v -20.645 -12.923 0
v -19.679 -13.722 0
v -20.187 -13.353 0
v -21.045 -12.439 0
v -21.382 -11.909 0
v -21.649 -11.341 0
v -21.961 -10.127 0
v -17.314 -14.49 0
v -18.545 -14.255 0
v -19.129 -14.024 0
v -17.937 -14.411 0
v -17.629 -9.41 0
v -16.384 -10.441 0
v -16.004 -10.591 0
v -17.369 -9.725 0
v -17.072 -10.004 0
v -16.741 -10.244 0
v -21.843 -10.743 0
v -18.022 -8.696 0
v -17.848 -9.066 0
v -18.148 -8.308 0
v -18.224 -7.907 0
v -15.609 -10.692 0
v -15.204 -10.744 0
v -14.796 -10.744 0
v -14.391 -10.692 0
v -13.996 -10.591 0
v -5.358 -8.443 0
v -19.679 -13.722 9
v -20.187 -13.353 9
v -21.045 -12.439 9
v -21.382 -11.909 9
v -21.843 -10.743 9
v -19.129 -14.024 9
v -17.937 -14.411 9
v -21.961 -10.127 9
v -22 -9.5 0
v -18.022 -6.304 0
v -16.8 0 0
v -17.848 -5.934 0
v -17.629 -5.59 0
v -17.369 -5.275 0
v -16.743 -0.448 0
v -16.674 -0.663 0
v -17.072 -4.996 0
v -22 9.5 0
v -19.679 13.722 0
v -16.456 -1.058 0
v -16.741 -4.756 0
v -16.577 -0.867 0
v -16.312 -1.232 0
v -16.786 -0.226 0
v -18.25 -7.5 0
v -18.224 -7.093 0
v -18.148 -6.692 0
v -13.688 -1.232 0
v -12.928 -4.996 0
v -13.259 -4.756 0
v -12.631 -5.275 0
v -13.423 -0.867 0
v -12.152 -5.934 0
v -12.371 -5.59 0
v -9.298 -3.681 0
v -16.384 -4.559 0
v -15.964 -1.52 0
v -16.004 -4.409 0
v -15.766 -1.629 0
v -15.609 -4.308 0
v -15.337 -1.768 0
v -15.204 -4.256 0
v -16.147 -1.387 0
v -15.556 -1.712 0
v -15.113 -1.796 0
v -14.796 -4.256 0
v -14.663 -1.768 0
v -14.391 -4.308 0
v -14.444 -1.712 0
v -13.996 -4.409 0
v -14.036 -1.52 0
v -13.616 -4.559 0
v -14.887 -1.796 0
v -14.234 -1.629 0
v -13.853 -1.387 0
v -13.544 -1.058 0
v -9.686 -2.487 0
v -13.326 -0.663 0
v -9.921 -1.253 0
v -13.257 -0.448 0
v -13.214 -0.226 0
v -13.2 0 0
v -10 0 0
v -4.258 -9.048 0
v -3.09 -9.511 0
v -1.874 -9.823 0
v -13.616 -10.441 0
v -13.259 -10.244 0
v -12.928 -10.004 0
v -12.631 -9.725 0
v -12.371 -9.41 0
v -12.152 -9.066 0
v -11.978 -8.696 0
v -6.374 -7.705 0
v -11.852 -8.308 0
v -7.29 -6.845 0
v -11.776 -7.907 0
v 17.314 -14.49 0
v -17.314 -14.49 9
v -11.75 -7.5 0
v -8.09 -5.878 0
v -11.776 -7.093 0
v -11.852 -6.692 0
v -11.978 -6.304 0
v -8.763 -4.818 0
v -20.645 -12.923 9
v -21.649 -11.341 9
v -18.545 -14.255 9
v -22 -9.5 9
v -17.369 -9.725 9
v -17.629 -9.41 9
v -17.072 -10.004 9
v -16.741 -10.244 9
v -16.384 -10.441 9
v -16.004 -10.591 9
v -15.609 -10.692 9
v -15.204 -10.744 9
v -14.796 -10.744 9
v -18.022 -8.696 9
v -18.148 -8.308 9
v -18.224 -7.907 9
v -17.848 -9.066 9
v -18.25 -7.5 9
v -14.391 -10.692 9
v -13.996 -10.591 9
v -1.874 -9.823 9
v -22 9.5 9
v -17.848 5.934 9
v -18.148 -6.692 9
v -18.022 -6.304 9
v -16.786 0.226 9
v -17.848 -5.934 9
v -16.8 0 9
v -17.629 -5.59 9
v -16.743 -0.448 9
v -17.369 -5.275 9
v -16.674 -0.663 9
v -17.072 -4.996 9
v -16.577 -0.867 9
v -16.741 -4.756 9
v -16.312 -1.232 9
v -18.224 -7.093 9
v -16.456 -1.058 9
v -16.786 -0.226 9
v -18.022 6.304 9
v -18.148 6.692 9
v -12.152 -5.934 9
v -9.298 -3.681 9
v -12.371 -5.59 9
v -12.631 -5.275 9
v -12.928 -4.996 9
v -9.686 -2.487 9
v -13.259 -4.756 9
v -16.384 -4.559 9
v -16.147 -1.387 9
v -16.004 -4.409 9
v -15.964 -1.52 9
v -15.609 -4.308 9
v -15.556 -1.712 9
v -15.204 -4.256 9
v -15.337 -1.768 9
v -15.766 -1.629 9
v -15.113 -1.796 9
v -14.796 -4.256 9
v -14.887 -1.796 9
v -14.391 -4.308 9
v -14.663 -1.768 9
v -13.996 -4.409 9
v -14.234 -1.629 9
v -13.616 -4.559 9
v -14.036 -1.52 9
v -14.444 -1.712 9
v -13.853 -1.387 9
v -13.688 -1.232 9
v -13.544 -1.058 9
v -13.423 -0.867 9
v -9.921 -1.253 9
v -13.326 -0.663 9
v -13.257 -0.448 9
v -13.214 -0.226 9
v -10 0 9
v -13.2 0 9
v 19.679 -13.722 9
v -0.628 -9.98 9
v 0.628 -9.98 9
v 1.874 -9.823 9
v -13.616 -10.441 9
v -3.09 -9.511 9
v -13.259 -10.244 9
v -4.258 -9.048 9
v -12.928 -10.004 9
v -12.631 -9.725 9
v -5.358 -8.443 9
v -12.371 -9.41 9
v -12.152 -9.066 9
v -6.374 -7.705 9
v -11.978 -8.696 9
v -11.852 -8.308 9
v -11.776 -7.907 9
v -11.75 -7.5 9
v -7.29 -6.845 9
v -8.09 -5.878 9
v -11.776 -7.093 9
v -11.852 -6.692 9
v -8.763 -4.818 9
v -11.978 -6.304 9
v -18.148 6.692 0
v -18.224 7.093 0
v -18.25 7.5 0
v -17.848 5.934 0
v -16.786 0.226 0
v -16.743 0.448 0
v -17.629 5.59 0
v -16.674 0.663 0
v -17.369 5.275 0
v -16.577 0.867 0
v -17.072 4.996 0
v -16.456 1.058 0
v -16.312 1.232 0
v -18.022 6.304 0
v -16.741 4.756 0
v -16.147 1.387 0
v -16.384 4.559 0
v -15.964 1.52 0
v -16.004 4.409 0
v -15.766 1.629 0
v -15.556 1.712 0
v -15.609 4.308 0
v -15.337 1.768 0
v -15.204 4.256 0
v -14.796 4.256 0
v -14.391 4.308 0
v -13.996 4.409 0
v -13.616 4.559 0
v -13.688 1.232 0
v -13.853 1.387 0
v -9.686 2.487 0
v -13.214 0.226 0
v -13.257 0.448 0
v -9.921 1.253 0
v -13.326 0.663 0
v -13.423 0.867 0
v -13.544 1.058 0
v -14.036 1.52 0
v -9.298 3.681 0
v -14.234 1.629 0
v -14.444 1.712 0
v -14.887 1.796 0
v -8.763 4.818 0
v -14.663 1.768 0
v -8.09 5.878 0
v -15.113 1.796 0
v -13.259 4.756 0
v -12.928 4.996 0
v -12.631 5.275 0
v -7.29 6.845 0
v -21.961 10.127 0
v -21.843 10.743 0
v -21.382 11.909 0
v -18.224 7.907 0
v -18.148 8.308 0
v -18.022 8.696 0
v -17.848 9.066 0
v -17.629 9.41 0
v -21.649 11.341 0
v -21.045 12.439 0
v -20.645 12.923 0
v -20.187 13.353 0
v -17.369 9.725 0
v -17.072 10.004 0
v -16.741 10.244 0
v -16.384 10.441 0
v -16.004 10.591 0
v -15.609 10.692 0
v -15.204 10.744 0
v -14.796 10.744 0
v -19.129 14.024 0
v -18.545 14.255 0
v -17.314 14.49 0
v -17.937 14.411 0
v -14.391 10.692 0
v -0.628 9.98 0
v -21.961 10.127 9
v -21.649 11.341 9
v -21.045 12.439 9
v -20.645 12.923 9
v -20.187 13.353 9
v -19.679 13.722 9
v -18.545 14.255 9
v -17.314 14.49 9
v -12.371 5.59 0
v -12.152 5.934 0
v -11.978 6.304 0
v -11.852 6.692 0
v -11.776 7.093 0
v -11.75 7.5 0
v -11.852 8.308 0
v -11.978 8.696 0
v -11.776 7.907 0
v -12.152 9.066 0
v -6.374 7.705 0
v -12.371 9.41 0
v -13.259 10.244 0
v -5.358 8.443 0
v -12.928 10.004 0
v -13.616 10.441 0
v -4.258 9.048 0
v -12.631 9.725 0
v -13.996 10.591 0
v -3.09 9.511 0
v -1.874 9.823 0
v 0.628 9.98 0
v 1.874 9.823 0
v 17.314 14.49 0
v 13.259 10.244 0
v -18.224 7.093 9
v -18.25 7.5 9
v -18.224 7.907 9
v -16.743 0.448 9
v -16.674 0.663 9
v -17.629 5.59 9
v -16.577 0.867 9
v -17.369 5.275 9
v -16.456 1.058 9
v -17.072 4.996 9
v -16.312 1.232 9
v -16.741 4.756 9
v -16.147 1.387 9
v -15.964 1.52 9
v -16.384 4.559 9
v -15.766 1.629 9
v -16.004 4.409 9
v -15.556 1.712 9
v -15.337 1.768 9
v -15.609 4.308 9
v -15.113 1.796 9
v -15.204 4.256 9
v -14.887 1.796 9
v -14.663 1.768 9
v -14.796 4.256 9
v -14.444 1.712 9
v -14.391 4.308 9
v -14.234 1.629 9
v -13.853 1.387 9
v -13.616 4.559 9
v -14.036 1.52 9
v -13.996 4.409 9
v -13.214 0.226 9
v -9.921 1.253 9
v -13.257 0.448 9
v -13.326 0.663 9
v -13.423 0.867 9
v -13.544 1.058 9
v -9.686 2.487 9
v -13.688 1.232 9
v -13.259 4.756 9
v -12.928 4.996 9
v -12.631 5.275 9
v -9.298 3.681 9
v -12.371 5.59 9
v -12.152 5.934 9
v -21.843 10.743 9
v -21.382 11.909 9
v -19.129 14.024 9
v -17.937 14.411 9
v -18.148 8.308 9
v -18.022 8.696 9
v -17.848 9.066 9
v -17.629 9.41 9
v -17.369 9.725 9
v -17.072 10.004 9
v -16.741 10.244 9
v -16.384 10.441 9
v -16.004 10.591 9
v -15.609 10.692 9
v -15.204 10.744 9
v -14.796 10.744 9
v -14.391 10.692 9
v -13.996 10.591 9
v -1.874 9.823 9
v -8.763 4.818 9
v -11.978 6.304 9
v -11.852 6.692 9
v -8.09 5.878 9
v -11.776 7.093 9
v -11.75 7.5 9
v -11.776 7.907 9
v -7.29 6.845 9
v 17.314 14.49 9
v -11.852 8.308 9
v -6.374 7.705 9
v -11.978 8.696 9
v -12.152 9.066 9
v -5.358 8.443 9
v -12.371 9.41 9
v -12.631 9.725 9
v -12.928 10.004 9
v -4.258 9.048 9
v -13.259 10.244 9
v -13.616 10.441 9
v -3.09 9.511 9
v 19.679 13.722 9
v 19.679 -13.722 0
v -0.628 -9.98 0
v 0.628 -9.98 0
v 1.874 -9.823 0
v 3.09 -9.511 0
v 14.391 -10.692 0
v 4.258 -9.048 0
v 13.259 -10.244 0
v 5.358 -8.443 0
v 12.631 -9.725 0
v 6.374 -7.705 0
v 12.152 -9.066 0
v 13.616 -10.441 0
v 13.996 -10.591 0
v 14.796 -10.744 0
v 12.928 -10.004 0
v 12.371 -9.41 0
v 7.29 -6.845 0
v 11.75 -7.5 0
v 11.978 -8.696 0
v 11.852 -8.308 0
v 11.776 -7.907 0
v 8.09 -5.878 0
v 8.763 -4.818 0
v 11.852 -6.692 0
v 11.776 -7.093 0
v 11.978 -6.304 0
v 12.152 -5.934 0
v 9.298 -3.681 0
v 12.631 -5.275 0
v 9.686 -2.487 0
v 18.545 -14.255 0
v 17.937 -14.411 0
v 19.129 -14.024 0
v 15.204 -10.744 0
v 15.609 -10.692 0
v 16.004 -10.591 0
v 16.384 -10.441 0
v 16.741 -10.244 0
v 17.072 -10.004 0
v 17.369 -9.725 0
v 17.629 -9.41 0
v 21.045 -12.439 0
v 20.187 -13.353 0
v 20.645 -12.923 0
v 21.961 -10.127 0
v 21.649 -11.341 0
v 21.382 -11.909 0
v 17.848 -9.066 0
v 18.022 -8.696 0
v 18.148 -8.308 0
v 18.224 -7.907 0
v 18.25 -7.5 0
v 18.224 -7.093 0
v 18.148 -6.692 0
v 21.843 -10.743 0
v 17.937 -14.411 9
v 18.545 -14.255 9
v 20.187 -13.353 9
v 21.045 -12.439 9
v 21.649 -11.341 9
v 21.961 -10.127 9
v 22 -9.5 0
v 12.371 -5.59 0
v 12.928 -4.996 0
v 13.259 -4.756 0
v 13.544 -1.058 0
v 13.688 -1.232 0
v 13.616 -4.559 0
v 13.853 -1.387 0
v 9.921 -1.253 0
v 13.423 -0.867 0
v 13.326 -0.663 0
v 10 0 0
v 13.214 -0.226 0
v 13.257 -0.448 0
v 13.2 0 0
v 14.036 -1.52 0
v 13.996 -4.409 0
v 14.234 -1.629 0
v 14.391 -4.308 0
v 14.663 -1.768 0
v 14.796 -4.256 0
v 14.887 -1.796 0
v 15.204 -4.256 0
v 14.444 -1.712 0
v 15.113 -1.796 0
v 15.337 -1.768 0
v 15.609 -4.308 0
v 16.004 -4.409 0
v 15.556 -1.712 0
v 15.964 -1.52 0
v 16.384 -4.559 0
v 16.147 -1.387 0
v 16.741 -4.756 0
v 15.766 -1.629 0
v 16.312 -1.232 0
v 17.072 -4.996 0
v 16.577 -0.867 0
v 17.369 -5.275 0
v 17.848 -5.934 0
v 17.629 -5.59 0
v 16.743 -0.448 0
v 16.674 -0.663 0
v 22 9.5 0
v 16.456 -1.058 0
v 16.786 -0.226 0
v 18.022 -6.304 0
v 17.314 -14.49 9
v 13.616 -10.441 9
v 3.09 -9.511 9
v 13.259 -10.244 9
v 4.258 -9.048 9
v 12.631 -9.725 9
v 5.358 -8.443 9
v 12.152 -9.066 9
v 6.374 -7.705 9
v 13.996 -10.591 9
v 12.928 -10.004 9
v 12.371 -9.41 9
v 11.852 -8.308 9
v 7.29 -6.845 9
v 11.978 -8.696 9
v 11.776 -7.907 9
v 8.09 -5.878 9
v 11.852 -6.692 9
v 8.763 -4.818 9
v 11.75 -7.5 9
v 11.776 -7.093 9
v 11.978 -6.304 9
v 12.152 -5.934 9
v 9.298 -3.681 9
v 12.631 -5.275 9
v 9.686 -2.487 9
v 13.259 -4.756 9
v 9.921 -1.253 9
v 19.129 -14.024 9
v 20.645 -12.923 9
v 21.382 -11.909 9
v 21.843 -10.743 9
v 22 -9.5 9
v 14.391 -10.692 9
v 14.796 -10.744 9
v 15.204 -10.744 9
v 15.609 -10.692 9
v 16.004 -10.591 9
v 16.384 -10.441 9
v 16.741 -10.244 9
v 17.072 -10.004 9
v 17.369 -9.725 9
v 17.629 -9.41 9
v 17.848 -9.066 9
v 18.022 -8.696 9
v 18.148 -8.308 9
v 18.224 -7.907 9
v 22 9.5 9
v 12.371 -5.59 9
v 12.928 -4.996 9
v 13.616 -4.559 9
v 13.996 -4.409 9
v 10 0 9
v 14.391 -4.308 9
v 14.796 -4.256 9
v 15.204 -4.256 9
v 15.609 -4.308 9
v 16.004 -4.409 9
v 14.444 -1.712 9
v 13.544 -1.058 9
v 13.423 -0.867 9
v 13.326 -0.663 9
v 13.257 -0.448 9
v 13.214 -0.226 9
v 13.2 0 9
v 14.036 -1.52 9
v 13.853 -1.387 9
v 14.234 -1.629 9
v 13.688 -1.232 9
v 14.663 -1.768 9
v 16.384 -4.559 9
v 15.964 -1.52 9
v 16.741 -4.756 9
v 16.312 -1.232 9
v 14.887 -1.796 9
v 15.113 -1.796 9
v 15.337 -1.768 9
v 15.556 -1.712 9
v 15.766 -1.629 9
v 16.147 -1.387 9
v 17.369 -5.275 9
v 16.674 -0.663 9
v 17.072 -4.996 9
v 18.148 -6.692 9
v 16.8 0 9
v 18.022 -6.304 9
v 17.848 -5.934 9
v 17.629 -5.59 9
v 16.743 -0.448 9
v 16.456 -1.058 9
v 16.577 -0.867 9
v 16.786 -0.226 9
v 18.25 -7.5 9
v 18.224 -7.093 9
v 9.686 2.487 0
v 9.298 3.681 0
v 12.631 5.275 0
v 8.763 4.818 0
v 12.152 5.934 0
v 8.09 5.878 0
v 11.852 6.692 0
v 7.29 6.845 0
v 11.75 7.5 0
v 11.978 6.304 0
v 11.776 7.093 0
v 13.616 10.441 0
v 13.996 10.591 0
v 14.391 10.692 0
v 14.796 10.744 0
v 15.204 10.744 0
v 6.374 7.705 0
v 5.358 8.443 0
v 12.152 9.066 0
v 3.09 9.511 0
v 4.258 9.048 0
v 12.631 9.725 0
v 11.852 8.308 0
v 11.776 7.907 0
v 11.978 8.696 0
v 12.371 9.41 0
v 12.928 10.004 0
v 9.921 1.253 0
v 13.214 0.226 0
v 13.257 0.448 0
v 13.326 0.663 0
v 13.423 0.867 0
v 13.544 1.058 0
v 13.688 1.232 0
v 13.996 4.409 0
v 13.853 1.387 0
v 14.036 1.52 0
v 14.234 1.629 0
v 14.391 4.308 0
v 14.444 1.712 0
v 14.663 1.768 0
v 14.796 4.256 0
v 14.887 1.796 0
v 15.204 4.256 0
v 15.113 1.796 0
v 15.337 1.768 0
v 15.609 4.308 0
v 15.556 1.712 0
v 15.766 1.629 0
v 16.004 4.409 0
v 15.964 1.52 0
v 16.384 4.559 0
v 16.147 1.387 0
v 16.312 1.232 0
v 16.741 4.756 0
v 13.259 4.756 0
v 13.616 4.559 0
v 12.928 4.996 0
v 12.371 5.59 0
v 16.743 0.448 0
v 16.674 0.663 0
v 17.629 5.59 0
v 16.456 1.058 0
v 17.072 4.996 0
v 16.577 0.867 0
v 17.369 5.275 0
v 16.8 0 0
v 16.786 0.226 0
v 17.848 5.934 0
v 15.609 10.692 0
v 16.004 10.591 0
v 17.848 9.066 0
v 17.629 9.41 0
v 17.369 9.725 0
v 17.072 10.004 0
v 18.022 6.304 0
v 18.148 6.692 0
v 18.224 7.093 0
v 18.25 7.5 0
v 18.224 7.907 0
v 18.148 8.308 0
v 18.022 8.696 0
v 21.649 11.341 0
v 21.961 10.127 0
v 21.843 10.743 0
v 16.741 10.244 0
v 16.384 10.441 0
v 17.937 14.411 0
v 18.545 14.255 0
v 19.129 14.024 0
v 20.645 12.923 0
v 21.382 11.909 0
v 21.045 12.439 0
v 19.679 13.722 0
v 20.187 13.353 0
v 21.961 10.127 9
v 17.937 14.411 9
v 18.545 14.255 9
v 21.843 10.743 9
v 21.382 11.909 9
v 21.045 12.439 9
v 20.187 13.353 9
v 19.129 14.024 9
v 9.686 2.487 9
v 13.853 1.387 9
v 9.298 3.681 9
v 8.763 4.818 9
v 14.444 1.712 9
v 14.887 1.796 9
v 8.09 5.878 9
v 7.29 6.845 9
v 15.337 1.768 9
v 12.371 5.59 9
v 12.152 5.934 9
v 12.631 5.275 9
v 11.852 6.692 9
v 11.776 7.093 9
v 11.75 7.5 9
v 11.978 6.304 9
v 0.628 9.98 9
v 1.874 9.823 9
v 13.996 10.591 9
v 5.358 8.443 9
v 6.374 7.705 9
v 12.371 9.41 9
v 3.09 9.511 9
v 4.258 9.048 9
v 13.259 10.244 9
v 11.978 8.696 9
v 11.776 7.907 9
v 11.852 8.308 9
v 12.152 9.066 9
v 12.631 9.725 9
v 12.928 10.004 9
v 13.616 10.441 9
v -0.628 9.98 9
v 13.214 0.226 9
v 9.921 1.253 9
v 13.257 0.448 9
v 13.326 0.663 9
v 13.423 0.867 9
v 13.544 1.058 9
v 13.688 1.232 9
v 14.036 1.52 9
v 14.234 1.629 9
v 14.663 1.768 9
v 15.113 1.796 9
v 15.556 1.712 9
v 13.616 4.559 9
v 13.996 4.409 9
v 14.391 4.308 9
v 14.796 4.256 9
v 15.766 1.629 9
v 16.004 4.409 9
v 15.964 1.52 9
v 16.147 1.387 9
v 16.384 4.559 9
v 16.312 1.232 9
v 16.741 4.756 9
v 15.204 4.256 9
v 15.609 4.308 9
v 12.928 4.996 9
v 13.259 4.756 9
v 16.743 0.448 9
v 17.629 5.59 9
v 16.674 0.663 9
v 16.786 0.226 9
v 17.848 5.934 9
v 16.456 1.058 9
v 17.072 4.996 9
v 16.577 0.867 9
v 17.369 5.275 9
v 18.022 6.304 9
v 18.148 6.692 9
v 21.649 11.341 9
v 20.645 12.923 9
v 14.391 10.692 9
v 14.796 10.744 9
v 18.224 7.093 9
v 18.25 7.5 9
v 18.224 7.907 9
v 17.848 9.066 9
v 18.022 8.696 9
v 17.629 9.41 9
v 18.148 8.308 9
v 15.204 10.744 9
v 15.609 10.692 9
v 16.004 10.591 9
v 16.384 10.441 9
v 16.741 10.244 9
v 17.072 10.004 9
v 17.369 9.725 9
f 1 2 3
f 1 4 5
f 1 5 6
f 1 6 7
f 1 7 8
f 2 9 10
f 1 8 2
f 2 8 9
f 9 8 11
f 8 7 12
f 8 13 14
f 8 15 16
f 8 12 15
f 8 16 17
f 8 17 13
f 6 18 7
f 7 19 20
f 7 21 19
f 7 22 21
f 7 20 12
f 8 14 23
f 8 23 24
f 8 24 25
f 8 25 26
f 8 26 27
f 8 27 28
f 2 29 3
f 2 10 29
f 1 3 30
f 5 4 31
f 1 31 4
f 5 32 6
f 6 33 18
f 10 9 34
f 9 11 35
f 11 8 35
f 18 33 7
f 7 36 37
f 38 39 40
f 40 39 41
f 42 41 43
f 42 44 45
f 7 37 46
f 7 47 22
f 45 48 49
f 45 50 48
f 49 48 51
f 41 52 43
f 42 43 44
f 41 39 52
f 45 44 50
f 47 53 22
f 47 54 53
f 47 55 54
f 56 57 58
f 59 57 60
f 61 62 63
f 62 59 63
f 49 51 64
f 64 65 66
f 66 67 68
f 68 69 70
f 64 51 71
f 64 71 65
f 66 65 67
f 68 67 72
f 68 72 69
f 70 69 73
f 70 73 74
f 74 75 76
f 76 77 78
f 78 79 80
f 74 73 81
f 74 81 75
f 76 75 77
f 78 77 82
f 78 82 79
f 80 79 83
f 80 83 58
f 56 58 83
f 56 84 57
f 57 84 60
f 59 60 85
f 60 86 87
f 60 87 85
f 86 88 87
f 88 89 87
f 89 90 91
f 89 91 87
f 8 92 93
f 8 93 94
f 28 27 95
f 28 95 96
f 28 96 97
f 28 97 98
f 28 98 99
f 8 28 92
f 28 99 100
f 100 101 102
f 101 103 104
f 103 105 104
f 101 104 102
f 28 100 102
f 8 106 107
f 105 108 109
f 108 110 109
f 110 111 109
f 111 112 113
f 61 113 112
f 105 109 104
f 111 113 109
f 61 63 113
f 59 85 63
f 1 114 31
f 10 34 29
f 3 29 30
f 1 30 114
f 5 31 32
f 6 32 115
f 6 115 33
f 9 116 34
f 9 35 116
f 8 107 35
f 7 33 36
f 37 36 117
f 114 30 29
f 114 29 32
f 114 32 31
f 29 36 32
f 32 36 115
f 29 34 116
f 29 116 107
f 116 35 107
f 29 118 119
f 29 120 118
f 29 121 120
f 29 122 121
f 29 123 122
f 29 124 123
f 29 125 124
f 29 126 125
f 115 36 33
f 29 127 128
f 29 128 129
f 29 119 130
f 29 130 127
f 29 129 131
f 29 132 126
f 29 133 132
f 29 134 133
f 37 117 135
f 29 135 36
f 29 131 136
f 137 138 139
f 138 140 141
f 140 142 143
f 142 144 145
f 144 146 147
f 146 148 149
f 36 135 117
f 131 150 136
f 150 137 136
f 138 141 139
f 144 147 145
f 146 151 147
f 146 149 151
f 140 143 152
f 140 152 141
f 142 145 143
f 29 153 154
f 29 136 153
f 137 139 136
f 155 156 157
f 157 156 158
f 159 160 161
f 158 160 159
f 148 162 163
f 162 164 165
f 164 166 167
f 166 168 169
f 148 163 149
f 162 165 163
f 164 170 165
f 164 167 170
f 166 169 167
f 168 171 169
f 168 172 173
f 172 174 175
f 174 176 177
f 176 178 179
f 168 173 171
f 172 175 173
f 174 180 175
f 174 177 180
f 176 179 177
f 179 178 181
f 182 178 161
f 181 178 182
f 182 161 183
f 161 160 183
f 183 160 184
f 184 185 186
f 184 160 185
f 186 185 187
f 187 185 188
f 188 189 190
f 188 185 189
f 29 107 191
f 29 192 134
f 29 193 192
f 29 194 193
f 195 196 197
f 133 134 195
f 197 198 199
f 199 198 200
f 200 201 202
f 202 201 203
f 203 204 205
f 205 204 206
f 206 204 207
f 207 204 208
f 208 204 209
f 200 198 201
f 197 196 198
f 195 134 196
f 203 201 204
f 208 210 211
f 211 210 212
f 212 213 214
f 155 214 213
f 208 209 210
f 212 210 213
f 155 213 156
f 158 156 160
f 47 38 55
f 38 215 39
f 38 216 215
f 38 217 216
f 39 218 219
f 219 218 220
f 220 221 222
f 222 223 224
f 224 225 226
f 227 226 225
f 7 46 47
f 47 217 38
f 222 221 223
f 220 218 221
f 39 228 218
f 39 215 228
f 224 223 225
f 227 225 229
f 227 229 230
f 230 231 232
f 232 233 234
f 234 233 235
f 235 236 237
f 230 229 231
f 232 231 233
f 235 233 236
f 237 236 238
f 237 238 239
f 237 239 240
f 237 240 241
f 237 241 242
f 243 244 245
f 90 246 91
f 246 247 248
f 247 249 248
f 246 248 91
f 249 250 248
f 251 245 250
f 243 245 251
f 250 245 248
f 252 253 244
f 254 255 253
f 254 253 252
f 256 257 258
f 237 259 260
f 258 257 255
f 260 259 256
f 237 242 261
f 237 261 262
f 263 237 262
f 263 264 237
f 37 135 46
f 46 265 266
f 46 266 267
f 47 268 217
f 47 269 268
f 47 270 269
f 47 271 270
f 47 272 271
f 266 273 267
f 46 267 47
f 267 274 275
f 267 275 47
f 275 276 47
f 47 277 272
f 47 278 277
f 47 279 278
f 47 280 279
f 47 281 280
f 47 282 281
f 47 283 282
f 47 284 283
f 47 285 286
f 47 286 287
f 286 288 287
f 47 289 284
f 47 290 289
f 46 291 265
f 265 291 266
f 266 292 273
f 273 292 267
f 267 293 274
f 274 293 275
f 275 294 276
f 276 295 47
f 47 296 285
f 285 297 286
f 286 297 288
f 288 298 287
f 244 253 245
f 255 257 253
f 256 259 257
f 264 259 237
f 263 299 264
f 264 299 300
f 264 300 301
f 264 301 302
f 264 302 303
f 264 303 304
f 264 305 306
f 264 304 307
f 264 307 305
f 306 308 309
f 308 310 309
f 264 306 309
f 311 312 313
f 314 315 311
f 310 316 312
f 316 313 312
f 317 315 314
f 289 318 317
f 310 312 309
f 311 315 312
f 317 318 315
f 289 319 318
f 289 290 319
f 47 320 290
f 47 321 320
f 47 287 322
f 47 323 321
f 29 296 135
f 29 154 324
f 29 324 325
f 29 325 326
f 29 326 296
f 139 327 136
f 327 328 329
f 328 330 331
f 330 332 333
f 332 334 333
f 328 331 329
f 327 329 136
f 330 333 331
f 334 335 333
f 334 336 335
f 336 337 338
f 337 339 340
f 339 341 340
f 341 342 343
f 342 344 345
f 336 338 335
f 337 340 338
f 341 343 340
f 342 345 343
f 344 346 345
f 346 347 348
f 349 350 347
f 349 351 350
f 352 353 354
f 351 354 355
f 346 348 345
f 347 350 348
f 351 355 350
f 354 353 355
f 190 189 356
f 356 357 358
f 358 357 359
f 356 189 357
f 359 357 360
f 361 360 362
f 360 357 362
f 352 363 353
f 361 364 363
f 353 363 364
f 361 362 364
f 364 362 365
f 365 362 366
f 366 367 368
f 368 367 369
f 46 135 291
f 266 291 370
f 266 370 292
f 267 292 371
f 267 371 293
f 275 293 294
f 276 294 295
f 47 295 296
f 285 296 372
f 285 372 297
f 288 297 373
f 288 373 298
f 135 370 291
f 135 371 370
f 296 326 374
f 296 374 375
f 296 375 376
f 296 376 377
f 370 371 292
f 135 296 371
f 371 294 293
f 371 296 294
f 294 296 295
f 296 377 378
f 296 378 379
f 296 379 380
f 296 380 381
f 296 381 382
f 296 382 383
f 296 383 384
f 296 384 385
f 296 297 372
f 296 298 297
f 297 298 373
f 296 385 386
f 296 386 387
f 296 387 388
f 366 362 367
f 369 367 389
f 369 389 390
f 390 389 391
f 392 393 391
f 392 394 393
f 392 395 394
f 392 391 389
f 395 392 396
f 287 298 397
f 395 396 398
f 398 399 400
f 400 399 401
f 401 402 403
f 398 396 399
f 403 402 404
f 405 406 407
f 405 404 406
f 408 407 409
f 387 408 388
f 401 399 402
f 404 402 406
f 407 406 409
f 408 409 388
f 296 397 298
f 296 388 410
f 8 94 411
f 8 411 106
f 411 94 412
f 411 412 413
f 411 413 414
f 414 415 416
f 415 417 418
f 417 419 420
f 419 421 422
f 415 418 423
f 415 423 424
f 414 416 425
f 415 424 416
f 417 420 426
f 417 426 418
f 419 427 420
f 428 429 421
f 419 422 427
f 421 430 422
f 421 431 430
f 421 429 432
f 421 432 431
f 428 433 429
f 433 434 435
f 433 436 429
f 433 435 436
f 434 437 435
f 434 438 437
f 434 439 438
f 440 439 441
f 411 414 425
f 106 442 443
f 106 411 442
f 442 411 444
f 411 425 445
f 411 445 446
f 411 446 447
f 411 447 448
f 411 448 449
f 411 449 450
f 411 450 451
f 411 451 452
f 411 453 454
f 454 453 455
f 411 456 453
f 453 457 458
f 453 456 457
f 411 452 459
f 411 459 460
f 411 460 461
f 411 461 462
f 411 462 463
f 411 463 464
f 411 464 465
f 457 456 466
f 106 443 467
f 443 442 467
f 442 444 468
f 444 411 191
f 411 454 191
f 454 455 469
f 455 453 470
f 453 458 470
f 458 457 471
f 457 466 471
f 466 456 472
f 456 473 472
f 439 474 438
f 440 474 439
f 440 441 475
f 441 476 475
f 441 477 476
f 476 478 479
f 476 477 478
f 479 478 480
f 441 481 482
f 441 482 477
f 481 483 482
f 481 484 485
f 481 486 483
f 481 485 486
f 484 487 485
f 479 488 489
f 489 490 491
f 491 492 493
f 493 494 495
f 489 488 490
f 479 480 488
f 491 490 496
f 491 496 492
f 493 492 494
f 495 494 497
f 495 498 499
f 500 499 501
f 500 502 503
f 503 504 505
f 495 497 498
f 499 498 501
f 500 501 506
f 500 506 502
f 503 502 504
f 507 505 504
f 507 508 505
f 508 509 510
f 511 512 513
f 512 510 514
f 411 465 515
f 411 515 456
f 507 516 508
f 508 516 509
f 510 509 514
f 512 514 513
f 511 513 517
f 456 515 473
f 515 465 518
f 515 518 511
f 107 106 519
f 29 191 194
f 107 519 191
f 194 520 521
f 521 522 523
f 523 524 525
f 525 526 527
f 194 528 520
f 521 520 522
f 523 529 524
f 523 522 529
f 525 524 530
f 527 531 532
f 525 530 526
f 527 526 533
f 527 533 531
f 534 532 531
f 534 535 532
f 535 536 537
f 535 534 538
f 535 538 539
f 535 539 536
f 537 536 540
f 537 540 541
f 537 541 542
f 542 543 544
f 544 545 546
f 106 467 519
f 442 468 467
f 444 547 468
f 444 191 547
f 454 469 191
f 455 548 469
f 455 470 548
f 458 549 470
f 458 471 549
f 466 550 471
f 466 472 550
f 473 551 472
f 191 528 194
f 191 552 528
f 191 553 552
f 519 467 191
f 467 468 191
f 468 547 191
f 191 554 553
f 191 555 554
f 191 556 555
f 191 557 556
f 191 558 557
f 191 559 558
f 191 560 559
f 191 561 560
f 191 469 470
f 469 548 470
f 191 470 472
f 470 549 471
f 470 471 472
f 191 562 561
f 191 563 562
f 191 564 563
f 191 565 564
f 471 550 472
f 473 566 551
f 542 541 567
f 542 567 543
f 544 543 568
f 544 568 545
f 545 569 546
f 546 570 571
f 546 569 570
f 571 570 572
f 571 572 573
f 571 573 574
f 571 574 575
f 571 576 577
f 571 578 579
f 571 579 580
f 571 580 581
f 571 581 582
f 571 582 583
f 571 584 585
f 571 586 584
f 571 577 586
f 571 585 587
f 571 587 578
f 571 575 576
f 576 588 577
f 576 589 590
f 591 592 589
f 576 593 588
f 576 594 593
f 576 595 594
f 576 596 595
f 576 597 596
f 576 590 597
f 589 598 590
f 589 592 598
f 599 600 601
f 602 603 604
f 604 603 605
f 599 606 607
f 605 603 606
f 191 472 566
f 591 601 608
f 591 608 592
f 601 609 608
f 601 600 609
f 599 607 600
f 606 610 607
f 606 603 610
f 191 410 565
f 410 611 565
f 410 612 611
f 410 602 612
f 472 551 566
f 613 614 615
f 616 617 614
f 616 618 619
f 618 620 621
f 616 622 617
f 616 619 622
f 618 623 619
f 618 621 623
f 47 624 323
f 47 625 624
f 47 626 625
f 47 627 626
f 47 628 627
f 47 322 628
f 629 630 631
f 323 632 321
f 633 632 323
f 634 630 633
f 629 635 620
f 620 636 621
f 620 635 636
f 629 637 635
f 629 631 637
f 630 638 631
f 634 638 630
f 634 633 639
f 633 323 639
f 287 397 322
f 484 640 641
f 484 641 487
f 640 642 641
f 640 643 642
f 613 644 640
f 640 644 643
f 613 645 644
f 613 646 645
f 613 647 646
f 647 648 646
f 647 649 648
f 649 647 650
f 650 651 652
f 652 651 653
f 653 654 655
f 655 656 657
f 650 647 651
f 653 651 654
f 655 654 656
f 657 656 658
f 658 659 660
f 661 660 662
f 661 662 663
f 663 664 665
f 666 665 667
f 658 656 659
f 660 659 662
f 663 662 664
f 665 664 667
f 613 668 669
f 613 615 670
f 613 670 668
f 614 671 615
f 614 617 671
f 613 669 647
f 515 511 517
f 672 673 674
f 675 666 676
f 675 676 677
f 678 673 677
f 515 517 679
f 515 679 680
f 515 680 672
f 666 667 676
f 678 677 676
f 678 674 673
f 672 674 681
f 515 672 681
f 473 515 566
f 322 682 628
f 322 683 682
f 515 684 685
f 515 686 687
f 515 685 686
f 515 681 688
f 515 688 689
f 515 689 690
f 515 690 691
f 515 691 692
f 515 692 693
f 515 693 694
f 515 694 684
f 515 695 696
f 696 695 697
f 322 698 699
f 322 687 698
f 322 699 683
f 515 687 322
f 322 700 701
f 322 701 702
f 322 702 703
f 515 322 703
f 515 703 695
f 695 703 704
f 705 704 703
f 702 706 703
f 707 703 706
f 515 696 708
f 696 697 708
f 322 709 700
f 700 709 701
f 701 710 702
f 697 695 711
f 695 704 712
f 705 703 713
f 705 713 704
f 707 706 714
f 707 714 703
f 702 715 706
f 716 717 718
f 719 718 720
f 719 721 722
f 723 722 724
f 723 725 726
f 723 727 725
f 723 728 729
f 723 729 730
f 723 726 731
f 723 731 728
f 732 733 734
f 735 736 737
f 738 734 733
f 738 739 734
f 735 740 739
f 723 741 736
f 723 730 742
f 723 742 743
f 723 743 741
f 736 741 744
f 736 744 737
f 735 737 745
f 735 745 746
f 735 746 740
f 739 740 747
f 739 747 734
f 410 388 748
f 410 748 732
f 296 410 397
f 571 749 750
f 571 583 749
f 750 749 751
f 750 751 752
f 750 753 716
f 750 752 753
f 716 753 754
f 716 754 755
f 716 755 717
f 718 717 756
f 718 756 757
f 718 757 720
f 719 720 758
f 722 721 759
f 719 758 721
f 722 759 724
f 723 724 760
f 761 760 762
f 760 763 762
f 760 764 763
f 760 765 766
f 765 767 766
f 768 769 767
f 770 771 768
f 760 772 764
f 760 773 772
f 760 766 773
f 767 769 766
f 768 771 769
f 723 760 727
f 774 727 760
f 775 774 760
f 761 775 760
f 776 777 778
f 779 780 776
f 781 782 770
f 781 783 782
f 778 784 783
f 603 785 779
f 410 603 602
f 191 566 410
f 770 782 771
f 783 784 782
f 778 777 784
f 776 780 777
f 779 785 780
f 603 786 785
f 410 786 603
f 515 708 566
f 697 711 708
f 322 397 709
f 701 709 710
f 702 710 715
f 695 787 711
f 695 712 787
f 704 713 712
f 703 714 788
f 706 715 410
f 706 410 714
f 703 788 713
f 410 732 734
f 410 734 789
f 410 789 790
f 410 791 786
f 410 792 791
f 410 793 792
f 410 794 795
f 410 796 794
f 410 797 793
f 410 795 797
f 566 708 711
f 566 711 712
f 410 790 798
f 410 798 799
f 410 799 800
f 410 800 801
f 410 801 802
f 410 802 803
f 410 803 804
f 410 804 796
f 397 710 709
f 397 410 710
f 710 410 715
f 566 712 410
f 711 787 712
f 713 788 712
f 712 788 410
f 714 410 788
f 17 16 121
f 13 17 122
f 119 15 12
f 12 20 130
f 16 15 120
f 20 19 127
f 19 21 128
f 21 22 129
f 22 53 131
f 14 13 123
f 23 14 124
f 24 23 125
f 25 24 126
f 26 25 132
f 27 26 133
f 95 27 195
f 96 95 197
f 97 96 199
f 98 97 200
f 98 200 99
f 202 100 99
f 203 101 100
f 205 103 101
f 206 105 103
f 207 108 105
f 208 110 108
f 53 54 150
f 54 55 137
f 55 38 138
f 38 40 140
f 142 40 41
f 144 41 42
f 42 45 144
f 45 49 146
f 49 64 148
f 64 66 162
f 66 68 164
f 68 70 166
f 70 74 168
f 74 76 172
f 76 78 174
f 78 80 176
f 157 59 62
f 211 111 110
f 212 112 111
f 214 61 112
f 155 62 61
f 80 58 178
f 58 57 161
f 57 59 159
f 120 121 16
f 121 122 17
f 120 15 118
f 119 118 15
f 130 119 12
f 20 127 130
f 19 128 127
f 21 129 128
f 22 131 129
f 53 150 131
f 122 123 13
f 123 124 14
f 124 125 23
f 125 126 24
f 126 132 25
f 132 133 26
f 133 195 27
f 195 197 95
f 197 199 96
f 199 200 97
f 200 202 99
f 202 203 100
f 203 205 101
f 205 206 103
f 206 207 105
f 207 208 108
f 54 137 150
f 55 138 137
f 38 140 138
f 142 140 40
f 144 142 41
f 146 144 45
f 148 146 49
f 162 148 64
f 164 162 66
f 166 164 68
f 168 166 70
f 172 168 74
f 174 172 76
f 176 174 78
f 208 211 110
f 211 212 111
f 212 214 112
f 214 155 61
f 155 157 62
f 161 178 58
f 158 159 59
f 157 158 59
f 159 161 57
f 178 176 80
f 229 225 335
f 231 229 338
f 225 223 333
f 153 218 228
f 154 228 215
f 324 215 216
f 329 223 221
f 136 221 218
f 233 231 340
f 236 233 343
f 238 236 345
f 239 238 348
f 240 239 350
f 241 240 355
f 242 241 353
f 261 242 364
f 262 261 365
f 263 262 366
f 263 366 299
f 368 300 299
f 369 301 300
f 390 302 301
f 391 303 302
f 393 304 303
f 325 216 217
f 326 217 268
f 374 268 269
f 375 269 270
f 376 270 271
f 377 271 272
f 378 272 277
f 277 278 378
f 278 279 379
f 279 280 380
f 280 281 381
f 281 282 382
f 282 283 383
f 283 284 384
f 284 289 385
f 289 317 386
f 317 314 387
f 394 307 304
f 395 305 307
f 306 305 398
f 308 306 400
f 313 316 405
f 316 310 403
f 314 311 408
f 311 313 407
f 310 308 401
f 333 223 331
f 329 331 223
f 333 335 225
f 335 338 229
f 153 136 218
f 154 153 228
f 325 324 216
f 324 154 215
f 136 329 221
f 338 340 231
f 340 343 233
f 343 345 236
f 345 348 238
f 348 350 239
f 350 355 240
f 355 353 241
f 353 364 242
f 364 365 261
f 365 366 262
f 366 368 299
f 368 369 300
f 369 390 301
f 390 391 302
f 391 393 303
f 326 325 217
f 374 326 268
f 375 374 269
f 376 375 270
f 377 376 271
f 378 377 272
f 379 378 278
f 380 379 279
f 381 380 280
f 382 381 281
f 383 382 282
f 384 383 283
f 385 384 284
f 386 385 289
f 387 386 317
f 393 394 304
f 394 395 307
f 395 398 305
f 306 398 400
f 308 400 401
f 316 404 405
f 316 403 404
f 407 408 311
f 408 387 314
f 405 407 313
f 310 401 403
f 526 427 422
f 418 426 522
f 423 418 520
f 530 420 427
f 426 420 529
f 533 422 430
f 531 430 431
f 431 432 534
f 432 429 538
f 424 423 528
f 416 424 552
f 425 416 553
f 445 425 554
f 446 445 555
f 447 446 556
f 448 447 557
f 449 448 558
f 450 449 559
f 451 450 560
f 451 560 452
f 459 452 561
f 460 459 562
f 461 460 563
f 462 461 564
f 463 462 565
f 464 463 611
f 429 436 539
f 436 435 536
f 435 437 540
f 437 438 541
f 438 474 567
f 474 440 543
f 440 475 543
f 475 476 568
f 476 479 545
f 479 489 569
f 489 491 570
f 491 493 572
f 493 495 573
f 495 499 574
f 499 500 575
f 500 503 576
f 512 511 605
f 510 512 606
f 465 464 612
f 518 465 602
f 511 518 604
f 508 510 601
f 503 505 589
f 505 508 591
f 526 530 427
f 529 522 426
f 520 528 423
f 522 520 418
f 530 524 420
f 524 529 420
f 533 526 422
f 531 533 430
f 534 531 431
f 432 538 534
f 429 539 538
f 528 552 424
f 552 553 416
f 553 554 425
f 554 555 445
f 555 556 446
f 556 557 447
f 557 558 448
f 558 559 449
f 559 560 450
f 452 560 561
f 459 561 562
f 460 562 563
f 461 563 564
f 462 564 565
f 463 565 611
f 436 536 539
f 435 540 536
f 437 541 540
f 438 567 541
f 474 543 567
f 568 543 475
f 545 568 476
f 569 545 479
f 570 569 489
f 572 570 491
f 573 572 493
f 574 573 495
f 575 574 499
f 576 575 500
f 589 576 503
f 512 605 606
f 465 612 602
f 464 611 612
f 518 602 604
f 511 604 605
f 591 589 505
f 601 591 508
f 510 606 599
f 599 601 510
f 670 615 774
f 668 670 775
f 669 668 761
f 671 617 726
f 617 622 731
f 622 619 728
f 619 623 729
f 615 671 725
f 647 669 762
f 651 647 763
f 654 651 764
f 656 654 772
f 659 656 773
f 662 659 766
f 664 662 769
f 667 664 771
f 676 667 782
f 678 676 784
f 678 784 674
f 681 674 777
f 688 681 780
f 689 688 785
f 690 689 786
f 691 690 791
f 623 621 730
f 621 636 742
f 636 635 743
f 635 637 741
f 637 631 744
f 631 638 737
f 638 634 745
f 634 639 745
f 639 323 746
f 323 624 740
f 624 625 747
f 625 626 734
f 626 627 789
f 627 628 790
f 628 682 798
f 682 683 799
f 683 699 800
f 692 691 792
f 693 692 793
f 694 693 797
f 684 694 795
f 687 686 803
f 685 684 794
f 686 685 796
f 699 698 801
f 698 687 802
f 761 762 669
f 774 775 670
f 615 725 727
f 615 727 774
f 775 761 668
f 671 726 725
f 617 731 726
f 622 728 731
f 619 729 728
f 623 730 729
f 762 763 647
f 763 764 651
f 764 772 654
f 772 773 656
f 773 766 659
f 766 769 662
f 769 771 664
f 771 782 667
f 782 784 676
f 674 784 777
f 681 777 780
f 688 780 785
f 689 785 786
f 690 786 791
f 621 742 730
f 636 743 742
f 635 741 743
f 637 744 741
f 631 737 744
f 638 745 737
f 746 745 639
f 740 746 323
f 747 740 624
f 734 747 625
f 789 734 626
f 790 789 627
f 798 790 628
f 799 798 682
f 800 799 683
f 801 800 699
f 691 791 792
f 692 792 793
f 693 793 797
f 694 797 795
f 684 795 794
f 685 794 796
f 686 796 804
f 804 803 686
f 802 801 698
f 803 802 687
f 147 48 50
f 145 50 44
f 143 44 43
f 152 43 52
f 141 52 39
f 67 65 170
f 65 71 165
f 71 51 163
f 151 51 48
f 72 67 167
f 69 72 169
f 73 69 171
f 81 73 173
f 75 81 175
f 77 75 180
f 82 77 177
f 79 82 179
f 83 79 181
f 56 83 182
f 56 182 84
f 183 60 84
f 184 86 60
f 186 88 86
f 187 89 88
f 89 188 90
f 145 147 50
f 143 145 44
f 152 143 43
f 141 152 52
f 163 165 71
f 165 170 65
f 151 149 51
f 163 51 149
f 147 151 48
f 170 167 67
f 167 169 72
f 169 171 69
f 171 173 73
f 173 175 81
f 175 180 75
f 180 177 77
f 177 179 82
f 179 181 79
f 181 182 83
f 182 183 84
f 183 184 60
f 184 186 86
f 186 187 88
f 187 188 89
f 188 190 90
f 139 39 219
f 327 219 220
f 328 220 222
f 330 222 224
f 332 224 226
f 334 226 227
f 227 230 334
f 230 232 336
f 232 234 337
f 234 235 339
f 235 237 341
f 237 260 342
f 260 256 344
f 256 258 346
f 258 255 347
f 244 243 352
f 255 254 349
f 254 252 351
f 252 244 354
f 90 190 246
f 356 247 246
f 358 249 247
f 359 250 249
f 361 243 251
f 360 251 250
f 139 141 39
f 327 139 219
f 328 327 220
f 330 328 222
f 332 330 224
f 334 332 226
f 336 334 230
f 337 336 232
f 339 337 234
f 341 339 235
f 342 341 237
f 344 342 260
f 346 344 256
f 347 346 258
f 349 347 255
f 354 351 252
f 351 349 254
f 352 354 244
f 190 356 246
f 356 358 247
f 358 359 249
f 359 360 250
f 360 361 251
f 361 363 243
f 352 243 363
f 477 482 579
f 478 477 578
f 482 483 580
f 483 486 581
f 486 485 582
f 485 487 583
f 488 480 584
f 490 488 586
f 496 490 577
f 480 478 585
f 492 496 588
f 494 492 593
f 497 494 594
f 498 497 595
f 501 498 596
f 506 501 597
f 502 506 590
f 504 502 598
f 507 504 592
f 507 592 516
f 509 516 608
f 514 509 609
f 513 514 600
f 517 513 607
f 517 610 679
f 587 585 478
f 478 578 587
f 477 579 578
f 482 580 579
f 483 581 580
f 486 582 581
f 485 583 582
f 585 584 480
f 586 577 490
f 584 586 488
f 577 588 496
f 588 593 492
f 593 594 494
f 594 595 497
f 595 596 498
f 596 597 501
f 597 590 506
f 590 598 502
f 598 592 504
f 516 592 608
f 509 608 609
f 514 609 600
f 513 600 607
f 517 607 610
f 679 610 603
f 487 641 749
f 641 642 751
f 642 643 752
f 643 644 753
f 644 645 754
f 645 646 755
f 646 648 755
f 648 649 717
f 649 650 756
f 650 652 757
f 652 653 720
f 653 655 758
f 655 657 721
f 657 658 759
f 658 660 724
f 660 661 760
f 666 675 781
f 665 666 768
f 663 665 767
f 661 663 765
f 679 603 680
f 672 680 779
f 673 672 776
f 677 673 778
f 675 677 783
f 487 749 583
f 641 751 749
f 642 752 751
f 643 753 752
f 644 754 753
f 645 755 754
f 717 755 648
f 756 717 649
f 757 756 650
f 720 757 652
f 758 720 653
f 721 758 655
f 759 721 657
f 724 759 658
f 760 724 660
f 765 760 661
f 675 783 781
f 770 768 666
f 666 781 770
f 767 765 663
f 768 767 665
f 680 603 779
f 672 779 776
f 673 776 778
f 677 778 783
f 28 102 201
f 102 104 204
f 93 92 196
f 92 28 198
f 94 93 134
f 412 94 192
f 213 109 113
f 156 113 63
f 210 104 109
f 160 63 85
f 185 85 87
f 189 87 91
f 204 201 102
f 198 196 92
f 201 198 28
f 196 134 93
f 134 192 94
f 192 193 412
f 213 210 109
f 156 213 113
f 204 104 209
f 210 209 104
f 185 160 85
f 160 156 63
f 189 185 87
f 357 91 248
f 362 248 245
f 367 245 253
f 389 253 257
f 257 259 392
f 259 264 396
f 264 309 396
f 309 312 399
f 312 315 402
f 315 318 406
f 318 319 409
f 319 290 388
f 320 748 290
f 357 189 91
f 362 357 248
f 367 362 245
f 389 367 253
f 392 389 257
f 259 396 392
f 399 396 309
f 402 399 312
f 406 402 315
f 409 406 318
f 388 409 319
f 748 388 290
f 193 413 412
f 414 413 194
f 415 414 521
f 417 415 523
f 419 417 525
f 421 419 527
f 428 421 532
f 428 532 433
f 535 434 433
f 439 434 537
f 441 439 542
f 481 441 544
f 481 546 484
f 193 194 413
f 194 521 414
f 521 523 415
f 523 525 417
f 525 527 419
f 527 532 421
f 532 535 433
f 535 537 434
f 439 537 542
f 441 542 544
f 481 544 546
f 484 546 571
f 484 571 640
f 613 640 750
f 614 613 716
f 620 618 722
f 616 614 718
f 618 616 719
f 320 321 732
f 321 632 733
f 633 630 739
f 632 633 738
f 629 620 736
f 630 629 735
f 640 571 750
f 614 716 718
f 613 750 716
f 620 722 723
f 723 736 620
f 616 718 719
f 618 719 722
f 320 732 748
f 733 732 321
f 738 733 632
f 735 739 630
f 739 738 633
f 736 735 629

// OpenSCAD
$fn = 50;

difference() {
	union() {
		hull() {
			translate(v = [-17.0, 9.5, 0]) {
				cylinder(h = 9, r = 5);
			}
			translate(v = [17.0, 9.5, 0]) {
				cylinder(h = 9, r = 5);
			}
			translate(v = [-17.0, -9.5, 0]) {
				cylinder(h = 9, r = 5);
			}
			translate(v = [17.0, -9.5, 0]) {
				cylinder(h = 9, r = 5);
			}
		}
	}
	union() {
		translate(v = [-15.0, -7.5, 0]) {
			cylinder(h = 9, r = 3.25);
		}
		translate(v = [-15.0, 7.5, 0]) {
			cylinder(h = 9, r = 3.25);
		}
		translate(v = [15.0, -7.5, 0]) {
			cylinder(h = 9, r = 3.25);
		}
		translate(v = [15.0, 7.5, 0]) {
			cylinder(h = 9, r = 3.25);
		}
		translate(v = [-15.0, 0.0, 0]) {
			cylinder(h = 9, r = 1.8);
		}
		translate(v = [15.0, 0.0, 0]) {
			cylinder(h = 9, r = 1.8);
		}
		cylinder(h = 9, r = 10.0);
	}
}
